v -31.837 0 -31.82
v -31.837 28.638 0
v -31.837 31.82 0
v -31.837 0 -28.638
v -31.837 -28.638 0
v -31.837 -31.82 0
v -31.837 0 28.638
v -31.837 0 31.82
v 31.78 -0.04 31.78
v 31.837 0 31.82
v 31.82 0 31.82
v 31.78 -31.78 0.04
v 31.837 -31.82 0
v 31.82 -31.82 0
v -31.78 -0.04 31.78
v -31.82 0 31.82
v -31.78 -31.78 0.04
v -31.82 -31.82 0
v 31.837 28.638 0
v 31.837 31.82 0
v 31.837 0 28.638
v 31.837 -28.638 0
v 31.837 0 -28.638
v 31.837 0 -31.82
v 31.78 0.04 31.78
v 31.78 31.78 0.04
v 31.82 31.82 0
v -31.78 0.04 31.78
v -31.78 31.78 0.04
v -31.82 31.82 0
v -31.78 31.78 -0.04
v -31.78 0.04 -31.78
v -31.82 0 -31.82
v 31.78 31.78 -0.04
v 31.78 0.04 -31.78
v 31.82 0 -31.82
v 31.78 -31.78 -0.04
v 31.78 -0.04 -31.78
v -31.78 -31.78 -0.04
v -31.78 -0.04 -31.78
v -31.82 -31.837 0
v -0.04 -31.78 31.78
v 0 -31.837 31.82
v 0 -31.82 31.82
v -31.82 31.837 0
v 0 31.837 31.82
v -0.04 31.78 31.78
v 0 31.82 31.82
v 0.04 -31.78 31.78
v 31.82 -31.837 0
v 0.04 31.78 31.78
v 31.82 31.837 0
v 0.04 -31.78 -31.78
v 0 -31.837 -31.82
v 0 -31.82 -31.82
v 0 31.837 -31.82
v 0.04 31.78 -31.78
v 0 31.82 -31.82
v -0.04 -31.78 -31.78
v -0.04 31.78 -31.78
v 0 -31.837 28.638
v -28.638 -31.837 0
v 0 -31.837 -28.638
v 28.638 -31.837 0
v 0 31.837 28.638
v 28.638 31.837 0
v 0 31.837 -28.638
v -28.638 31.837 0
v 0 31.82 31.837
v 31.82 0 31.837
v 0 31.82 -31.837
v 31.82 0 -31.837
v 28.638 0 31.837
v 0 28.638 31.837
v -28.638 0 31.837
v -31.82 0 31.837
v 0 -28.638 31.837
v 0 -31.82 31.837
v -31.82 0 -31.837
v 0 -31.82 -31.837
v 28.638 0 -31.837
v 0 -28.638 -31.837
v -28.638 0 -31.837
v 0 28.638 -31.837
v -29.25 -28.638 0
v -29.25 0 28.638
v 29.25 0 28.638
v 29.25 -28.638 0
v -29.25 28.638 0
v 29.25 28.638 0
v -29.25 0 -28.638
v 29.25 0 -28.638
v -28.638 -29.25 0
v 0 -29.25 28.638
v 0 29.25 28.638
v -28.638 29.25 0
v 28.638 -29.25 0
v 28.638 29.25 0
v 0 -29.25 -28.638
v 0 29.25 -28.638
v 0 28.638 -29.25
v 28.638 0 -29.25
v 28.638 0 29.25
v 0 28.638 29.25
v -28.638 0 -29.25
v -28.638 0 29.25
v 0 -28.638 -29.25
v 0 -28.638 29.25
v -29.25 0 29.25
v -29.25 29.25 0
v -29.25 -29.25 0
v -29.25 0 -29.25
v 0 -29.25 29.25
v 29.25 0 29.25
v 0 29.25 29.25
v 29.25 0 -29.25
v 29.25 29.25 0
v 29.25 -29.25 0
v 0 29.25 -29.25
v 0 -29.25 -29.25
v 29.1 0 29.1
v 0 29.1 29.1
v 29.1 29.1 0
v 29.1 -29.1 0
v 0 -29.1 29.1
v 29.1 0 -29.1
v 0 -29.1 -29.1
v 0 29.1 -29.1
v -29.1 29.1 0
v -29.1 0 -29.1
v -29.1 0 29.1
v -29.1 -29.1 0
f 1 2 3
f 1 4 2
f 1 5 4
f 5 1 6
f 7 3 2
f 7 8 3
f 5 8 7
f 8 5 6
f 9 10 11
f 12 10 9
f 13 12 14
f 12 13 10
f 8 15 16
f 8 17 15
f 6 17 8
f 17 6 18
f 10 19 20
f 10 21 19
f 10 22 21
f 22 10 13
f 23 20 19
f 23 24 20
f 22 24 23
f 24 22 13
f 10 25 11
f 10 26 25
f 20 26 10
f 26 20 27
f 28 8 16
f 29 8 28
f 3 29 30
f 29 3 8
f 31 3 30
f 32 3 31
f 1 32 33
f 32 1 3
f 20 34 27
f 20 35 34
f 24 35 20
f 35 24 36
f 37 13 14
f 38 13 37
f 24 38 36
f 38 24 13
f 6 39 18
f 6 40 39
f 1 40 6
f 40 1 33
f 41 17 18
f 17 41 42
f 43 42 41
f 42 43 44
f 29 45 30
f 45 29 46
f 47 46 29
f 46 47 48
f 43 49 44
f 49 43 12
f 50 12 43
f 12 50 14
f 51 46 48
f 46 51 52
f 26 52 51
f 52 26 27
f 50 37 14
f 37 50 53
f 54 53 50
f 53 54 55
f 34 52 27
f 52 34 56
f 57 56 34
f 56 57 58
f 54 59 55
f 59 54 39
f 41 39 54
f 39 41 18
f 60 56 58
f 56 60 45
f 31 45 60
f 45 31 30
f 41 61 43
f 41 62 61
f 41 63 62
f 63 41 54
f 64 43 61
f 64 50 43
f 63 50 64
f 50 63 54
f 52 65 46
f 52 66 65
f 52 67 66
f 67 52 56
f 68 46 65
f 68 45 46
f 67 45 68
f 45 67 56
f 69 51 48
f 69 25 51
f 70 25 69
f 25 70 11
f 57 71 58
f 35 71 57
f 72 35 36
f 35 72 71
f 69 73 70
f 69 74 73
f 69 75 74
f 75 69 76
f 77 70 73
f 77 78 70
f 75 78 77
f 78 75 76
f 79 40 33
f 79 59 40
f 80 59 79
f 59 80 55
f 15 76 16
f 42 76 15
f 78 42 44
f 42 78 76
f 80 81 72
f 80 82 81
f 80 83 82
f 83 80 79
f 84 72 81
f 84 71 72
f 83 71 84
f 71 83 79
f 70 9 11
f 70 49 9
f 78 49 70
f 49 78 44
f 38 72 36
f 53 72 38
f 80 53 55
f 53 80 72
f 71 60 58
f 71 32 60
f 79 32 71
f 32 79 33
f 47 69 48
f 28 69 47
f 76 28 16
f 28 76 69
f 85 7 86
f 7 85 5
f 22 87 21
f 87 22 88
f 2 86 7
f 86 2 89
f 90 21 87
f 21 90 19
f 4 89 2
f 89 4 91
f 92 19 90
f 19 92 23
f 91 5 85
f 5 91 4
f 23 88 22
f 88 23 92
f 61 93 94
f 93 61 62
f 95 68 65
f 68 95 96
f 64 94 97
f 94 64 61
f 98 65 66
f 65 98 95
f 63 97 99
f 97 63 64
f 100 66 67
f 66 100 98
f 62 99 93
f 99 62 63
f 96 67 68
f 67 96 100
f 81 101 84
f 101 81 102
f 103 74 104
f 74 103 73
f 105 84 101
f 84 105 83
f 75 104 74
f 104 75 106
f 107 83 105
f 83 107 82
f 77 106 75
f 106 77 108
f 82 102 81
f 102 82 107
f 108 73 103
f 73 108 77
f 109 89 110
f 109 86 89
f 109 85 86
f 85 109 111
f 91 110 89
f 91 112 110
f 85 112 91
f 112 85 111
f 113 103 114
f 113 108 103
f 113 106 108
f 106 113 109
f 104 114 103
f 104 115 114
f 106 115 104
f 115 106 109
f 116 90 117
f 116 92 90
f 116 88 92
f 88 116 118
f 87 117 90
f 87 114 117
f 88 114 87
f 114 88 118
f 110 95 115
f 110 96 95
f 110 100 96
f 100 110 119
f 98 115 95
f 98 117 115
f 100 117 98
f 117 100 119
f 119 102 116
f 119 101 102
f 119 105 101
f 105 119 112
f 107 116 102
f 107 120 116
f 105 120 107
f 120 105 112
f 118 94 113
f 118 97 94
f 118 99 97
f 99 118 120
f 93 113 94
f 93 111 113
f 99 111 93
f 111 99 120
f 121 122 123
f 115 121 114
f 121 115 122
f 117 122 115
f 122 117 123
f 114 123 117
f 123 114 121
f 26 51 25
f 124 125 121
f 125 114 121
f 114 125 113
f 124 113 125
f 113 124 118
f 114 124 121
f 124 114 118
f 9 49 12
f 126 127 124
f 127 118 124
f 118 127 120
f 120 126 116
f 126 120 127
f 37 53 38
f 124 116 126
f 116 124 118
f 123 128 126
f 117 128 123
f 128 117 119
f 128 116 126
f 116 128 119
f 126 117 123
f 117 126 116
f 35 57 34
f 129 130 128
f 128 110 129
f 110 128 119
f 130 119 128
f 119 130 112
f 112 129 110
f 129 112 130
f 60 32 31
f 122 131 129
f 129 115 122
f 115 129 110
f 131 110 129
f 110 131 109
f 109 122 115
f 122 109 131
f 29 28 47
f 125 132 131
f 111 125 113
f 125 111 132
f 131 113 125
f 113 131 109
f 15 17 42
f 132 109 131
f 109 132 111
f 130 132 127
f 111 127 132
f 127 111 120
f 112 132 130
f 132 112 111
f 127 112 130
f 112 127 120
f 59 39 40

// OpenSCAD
// file: Gilgahedron.scad
//Copyright 2022-2023 Gilgamech Technologies
//Title: Gilgahedron.scad v1.5
//Made by: Stephen Gillie
//Created on: 3/17/2022
//Updated on: 3/29/2023
//Units: any
//Notes: 
//v1.4 all shapes checked for inversions with f12, normalized to units of 1, and support full Gilgahedron notation (dimensions of size/scale, translation, rotation)
//1.5: Added gOval.

//icon_extrude("BigG.dxf",1,1,5);
//inverse_icon_extrude("BigG.dxf",1,1,5);

//Basic Shapes
module gCube(xSize=1,ySize=1,zSize=1,xMove=0,yMove=0,zMove=0,xRotate=0,yRotate=0,zRotate=0){
translate([xMove,yMove,zMove])
rotate([xRotate,yRotate,zRotate])
    cube([xSize,ySize,zSize],center=true);
}

module gCylinder(h=1,r1=1,r2=1,xMove=0,yMove=0,zMove=0,xRotate=0,yRotate=0,zRotate=0){
translate([xMove,yMove,zMove])
rotate([xRotate,yRotate,zRotate])
    cylinder(h,r1,r2,center=true,$fn=100);
}

module gSphere(xScale=1,yScale=1,zScale=1,xMove=0,yMove=0,zMove=0,xRotate=0,yRotate=0,zRotate=0){
translate([xMove,yMove,zMove])
rotate([xRotate,yRotate,zRotate])
    scale([xScale,yScale,zScale]) 
    sphere(r=(1),$fn=100);
}

module gOval(h=100,x=40,y=60) {
    scale([1,(y/x),1])
    gCylinder(100,40,40);
}

//Complex polyhedra
module pyramid(xScale=1,yScale=1,zScale=1,xMove=0,yMove=0,zMove=0,xRotate=0,yRotate=0,zRotate=0){

Points = [
  [ 0,  0,  0 ],  //0
  [ 8,  0,  0 ],  //1
  [ 8,  8,  0 ],  //2
  [ 0,  8,  0 ],  //3
  [ 4,  4,  8 ]];  //4

Faces = [
  [0,1,2,3],  // bottom
  [4,1,0],  // front
  [4,2,1],  // right
  [4,3,2],  // back
  [4,0,3]]; // left
  
translate([xMove,yMove,zMove])
rotate([xRotate,yRotate,zRotate])
    scale([xScale,yScale,zScale]) 
polyhedron( Points, Faces );
}
module d4(xScale=1,yScale=1,zScale=1,xMove=0,yMove=0,zMove=0,xRotate=0,yRotate=0,zRotate=0){

Points = [
  [ 0,  0,  0 ],  //0
  [ 1,  .25,  0 ],  //1
  [ .25,  1,  0 ],  //2
  [ .375,  .375,  .875]];  //3

Faces = [
  [0,1,2],  // bottom
  [1,0,3],  // right
  [0,2,3],  // left
  [1,3,2]]; // back
  
translate([xMove,yMove,zMove])
rotate([xRotate,yRotate,zRotate])
    scale([xScale,yScale,zScale]) 
polyhedron( Points, Faces );
}
module d8(xScale=1,yScale=1,zScale=1,xMove=0,yMove=0,zMove=0,xRotate=0,yRotate=0,zRotate=0){

Points = [
  [ 4, 4, 0 ],  //0
  [ 8, 0, 6 ],  //1
  [ 8, 8, 6 ],  //2
  [ 0, 8, 6 ],  //3
  [ 0, 0, 6 ],  //4
  [ 4, 4,12 ]];  //0

Faces = [
  [0,1,2], // bottom front
  [0,2,3], // bottom right
  [0,3,4], // bottom back
  [0,4,1], // bottom left
  [1,5,2], // top front
  [2,5,3], // top right
  [3,5,4], // top back
  [4,5,1]]; // top left
  
translate([xMove,yMove,zMove])
rotate([xRotate,yRotate,zRotate])
    scale([xScale,yScale,zScale]) 
polyhedron( Points, Faces );
}
module silo(xScale=1,yScale=1,zScale=1,xMove=0,yMove=0,zMove=0,xRotate=0,yRotate=0,zRotate=0){

height=.7075;
diameter=height*0.4125;

translate([xMove,yMove,zMove+(height/2)])
rotate([xRotate,yRotate,zRotate])
    scale([xScale,yScale,zScale]) {
gCylinder(height,diameter,diameter);
gSphere(diameter,diameter,diameter,0,0,height/2);
}}

//Extrusion
module file_extrude(filename="bigG.dxf"){
translate([-20,-20,0])
linear_extrude(height = 1, center = true)
import (file = filename);
}
module icon_extrude(filename="bigG.dxf",xScale=1,yScale=1,zScale=1,xMove=0,yMove=0,zMove=0,xRotate=0,yRotate=0,zRotate=0){
translate([xMove,yMove,zMove])
rotate([xRotate,yRotate,zRotate])
scale([xScale,yScale,zScale])
file_extrude(filename);

}
module inverse_icon_extrude(filename="bigG.dxf",xScale=1,yScale=1,zScale=1,xMove=0,yMove=0,zMove=0,xRotate=0,yRotate=0,zRotate=0){
bezelMult = 45;
difference(){
gCube(xScale*bezelMult,yScale*bezelMult,zScale,xMove,yMove+.5,zMove,xRotate,yRotate,zRotate);
icon_extrude(filename,xScale,yScale,zScale*1.05,xMove,yMove,zMove,xRotate,yRotate,zRotate);
}}

module text_extrude(string="Hello World!",height=1){
translate([-36,-4.5,0])
linear_extrude(height)
    text(string);
}
module gText(text="Hello World!",xSize=1,ySize=1,zSize=1,xTrans=0,yTrans=0,zTrans=0,xRot=0,yRot=0,zRot=0){
    translate([xTrans,yTrans,zTrans])
    rotate([xRot,yRot,zRot])
    scale([xSize*.1,ySize*.1,zSize*.1])
    linear_extrude(1)
    text(text);
}

//utility
module roundedBox(xSize=36,ySize=36,zSize=2,xTrans=0,yTrans=0,zTrans=0,xRot=0,yRot=0,zRot=0){
translate([xTrans,yTrans,zTrans])
rotate([xRot,yRot,zRot])
union(){
cubeSF=1.25;
gCube(xSize/cubeSF,ySize,zSize);
gCube(xSize,ySize/cubeSF-1,zSize);

cylSF=cubeSF*2;
cr=xSize*.085;

//dishwasher
//cx=xSize/cylSF+.4;
//cy=ySize/cylSF-1.2;

//bathtub
cx=xSize/cylSF+.8; 
cy=ySize/cylSF-1.6;


gCylinder(zSize,cr,cr,cx,cy);
gCylinder(zSize,cr,cr,-cx,cy);
gCylinder(zSize,cr,cr,cx,-cy);
gCylinder(zSize,cr,cr,-cx,-cy);
}}
module gBowl(length=4,width=4,depth=4,xTrans=0,yTrans=0,zTrans=0,xRot=0,yRot=0,zRot=0){
translate([xTrans,yTrans,zTrans])
    rotate([xRot,yRot,zRot])
difference(){
    gSphere(length,width,depth);
    gSphere(length,width,depth*1.125,0,0,depth*.125);
}}
//bar stock
module gTube(length=1,r1=1,r2=1,xTrans=0,yTrans=0,zTrans=0,xRot=0,yRot=0,zRot=0){
difference(){
    gCylinder(length,r1,r2,xTrans,yTrans,zTrans,xRot,yRot,zRot);
    gCylinder(length*1.1,r1*.9,r2*.9,xTrans,yTrans,zTrans,xRot,yRot,zRot);
}}
module roundedEdge(xSize = 1,ySize = 2,zSize = 10,xTrans=0,yTrans=0,zTrans=0,xRot=0,yRot=0,zRot=0) {
intersection() {
    gCylinder(zSize,ySize/2,ySize/2,xTrans,yTrans,zTrans,xRot,yRot,zRot);
    gCube(xSize,ySize,zSize,xTrans,yTrans,zTrans,xRot,yRot,zRot);
}}
//library
module checkPrint(Size=109){gCube(Size,Size,Size);}
// main file
//Copyright 2022 Gilgamech Technologies
//Title: 
//Made by: Stephen Gillie
//Created on: 4/07/2022
//Updated on: 5/21/2022
//Units: millimeters (.001)
//Notes: 
include  <Gilgahedron.scad>

union(){
voxelHedron(45);

triFill();
triFill(90);
triFill(180);
triFill(270);
triFill(0,90);
triFill(0,180);
triFill(0,270);
triFill(0,0,180);
triFill(0,90,180);
}
module triFill(rx=0,ry=0,rz=0){
pt = 29.1;
pv = 31.8;
CubePoints = [
  [ pt, pt,  0 ],  //0 - x,y
  [ pt,  0, pt ],  //1 - x,z
  [  0, pt, pt ],  //2 - y,z
  [ pv, pv,  0 ],  //3 - x,y
  [ pv,  0, pv ],  //4 - x,z
  [  0, pv, pv ]]; //5 - y,z
  
CubeFaces = [
  [2,1,0],  // inside
  [3,4,5],  // outside
  [1,2,5,4],  // top
  [0,3,5,2],  // rightFrOut
  [0,1,4,3]]; // leftFrOut
  
rotate([rx,ry,rz])
polyhedron( CubePoints, CubeFaces );
}

module voxelHedron(s = 1){
sz = s*1.3;
sc = s*1.415;
sd = s*0.9;
se = s*1.45;
az = 90;
difference(){
diamondHedron(s,sc);
diamondHedron(sd,se);
sizeCube(sz,sz,sz);
}}

module diamondHedron(sz = 1,le = (1.415),ro = 45){
union(){
sizeCube(le,sz,sz,ro);
sizeCube(sz,le,sz,0,ro);
sizeCube(sz,sz,le,0,0,ro);
}}
module sizeCube(sx = 1,sy = 1,sz = 1,rx = 0,ry = 0,rz = 0){
gCube(sx,sy,sz,0,0,0,rx,ry,rz);
}
